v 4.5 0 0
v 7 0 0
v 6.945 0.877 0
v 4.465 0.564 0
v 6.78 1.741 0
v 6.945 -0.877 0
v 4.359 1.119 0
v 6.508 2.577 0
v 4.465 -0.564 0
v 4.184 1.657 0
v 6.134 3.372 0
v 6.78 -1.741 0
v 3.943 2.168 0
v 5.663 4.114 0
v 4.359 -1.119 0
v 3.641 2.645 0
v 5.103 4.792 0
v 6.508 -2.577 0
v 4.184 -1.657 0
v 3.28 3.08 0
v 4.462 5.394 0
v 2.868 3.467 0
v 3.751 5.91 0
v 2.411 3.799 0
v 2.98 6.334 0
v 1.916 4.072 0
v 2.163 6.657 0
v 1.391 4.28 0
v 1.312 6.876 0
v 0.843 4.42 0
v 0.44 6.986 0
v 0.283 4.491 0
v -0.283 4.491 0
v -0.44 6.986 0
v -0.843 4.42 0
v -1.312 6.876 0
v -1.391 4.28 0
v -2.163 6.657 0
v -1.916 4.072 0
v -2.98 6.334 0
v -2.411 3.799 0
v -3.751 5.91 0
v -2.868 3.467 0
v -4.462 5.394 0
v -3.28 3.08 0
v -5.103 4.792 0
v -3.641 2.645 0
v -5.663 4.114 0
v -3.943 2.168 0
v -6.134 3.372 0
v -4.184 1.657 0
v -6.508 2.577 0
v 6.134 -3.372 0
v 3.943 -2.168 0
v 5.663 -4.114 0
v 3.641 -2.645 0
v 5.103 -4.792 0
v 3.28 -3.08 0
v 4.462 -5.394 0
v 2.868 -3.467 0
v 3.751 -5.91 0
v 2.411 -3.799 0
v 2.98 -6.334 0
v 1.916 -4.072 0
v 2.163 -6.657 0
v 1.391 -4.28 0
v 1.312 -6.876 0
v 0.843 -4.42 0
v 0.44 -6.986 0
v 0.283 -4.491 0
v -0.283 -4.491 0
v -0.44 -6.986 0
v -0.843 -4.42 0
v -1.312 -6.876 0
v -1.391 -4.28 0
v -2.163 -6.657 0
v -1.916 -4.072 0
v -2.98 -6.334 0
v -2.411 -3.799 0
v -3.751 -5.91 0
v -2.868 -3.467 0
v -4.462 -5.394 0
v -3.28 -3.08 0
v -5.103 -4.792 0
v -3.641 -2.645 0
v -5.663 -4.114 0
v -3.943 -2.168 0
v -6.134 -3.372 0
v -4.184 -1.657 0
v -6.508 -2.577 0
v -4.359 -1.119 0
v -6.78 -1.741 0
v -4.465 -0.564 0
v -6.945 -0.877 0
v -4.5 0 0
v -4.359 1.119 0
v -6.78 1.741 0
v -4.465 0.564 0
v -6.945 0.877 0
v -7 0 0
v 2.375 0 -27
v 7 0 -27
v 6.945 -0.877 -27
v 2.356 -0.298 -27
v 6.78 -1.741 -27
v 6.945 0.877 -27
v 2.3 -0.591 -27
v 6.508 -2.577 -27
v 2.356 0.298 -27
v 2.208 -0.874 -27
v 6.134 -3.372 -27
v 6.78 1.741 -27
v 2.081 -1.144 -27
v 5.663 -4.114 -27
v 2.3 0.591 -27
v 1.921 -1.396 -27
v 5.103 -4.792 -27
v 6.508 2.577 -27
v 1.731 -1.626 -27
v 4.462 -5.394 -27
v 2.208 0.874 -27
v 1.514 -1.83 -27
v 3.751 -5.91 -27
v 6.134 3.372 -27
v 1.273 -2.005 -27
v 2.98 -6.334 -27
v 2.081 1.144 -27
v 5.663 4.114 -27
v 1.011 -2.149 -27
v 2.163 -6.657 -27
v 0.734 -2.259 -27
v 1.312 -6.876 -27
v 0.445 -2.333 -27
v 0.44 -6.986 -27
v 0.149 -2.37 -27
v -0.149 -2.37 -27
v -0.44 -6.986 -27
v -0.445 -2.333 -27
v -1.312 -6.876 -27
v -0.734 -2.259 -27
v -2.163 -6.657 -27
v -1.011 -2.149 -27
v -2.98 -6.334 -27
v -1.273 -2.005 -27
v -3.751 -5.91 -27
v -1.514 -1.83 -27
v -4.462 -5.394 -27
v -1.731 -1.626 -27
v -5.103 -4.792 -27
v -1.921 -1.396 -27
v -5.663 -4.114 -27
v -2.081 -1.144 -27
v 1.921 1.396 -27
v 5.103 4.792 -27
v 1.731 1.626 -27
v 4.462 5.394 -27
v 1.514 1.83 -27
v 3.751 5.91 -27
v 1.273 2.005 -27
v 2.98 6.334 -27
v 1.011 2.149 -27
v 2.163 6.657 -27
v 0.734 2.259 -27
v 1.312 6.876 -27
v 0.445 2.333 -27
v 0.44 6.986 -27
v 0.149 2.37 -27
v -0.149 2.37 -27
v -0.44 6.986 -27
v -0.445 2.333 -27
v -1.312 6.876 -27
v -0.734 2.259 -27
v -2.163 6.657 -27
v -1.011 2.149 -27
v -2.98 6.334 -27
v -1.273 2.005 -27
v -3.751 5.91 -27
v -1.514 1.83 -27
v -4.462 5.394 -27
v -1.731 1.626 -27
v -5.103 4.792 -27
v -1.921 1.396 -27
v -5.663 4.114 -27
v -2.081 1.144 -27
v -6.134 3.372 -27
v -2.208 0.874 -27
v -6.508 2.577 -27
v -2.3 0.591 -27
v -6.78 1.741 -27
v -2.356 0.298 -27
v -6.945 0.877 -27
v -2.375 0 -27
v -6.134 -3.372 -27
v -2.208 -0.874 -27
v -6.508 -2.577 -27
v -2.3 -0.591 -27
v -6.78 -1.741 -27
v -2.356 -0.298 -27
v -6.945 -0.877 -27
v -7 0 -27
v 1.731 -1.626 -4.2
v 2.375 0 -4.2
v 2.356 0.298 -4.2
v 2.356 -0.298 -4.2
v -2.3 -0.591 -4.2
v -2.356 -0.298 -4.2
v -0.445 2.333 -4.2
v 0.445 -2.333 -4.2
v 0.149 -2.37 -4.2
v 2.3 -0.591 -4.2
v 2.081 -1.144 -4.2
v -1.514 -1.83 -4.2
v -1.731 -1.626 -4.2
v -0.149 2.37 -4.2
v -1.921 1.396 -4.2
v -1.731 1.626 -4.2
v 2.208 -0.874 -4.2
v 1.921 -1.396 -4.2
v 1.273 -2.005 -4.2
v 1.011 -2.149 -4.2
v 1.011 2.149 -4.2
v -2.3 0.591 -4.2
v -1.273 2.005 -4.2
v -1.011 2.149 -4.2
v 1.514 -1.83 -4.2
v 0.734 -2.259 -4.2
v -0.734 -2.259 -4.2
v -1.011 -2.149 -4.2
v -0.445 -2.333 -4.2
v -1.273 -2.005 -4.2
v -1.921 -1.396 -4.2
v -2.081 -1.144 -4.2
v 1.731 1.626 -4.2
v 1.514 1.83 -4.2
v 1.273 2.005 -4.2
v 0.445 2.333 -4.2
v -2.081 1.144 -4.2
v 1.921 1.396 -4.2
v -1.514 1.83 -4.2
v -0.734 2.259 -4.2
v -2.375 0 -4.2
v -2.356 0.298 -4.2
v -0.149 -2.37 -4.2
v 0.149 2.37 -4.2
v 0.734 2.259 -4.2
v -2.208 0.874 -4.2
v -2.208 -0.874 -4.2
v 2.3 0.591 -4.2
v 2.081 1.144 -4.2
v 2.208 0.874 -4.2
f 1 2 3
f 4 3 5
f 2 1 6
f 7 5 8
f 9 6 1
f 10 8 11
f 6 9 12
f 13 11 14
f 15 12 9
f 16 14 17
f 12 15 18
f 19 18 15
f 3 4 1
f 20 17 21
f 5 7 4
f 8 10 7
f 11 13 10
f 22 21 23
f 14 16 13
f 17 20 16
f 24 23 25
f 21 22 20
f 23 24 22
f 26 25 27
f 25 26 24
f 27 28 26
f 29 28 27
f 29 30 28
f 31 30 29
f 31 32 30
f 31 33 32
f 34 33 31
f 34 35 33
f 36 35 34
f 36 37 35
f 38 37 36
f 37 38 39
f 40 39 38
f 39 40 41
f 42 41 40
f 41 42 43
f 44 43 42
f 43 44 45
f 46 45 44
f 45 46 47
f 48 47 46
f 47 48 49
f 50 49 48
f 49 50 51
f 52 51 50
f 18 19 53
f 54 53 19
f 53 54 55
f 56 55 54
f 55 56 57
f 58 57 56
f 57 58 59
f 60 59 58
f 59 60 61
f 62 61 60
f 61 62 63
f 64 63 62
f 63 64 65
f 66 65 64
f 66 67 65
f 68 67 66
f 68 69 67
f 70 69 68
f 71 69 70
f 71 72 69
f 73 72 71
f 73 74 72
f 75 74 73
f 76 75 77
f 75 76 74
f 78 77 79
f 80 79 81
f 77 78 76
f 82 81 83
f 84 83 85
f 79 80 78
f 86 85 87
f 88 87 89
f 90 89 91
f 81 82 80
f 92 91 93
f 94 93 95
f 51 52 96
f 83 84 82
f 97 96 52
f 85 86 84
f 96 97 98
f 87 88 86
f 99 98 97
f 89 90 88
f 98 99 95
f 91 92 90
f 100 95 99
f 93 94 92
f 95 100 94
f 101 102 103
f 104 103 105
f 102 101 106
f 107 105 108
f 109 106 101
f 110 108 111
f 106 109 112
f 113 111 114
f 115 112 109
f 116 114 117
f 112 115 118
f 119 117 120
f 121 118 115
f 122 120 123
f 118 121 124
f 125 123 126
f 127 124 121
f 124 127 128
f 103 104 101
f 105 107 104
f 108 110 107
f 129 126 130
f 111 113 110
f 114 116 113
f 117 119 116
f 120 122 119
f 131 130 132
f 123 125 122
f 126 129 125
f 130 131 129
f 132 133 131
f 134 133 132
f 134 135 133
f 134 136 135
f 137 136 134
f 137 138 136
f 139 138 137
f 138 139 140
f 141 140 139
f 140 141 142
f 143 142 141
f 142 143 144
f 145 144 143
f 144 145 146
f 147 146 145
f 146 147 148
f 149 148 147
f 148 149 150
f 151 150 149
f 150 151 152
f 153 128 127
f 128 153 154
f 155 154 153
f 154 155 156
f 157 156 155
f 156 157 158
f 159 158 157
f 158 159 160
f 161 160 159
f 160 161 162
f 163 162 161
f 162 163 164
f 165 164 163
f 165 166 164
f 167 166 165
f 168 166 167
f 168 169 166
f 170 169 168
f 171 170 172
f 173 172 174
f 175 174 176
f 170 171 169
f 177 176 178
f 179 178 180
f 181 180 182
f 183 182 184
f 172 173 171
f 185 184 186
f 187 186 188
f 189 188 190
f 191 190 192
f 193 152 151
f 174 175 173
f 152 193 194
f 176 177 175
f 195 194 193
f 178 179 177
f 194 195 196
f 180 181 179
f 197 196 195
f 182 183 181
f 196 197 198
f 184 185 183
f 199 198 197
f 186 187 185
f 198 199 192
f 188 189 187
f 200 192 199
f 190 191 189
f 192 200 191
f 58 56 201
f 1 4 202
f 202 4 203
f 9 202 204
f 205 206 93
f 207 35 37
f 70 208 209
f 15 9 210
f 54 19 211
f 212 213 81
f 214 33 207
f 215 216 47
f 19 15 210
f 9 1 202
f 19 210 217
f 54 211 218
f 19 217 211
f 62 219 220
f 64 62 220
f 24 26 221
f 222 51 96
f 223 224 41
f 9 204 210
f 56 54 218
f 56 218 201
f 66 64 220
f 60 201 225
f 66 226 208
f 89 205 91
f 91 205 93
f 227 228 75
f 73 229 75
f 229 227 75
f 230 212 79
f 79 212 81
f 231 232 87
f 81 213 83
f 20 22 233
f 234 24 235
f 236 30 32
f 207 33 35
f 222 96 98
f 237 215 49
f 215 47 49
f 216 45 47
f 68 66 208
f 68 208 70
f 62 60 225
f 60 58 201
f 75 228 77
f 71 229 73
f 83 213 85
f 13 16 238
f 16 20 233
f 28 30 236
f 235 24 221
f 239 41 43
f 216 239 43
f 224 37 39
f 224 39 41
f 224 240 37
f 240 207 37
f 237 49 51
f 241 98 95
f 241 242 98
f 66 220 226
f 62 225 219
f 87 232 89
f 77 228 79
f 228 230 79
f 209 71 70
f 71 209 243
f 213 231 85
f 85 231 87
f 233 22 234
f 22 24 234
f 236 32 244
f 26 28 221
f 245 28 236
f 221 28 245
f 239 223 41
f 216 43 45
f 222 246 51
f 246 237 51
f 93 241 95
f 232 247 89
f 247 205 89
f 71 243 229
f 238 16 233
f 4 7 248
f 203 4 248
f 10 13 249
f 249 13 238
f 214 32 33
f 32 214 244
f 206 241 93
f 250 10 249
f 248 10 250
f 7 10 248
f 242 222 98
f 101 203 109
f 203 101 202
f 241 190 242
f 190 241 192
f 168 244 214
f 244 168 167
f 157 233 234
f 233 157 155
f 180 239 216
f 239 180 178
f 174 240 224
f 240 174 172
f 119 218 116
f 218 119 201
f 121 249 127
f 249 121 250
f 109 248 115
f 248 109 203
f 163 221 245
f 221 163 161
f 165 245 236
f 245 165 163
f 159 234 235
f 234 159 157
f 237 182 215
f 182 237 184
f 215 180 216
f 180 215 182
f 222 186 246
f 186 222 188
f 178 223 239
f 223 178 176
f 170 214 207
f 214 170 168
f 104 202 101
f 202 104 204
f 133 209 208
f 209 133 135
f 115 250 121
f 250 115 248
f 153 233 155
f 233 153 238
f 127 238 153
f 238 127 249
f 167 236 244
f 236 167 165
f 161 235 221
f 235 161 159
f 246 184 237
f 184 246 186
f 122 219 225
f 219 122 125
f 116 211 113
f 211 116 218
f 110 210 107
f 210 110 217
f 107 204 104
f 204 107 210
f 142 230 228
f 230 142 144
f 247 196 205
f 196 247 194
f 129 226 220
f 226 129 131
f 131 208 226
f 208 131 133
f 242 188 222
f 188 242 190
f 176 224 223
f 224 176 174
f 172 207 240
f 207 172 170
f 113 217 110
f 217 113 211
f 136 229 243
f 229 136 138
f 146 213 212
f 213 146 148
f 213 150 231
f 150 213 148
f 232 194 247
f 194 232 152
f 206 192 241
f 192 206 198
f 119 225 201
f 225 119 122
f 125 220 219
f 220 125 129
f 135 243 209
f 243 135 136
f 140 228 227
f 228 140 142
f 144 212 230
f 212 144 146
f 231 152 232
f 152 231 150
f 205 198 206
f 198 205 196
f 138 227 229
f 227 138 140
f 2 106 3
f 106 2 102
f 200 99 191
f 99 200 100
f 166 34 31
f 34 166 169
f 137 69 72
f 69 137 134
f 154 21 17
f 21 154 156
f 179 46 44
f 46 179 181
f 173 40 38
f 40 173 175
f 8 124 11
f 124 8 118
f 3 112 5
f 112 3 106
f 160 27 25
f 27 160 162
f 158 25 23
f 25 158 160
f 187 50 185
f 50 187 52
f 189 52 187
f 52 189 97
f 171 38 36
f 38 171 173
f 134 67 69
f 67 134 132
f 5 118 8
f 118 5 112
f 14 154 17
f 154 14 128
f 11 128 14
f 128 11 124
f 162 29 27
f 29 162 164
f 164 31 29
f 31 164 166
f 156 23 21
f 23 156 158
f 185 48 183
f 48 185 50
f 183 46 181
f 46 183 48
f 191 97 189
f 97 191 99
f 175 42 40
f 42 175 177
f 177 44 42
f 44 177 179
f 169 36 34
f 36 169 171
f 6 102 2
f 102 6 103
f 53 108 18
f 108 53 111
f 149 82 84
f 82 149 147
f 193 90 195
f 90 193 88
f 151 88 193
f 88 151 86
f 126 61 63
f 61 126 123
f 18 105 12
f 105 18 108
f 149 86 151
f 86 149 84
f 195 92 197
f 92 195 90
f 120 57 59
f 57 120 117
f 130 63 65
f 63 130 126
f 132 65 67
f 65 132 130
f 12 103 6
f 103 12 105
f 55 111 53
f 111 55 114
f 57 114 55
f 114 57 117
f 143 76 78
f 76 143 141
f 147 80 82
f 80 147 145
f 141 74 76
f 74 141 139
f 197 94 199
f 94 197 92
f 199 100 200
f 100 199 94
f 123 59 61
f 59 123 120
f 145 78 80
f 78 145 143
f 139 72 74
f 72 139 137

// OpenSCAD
$fn = 50;


difference() {
	union() {
		translate(v = [0, 0, -27.0000000000]) {
			cylinder(h = 27, r = 7.0000000000);
		}
	}
	union() {
		translate(v = [0, 0, 0]) {
			rotate(a = [0, 0, 0]) {
				difference() {
					union() {
						#translate(v = [0, 0, -27.0000000000]) {
							cylinder(h = 27, r = 2.2500000000);
						}
						#translate(v = [0, 0, -4.2000000000]) {
							cylinder(h = 4.2000000000, r = 7.0000000000, r1 = 2.3750000000, r2 = 4.5000000000);
						}
						#translate(v = [0, 0, -27.0000000000]) {
							cylinder(h = 27, r = 2.3750000000);
						}
						#translate(v = [0, 0, -27.0000000000]) {
							cylinder(h = 27, r = 2.2500000000);
						}
					}
					union();
				}
			}
		}
	}
}
